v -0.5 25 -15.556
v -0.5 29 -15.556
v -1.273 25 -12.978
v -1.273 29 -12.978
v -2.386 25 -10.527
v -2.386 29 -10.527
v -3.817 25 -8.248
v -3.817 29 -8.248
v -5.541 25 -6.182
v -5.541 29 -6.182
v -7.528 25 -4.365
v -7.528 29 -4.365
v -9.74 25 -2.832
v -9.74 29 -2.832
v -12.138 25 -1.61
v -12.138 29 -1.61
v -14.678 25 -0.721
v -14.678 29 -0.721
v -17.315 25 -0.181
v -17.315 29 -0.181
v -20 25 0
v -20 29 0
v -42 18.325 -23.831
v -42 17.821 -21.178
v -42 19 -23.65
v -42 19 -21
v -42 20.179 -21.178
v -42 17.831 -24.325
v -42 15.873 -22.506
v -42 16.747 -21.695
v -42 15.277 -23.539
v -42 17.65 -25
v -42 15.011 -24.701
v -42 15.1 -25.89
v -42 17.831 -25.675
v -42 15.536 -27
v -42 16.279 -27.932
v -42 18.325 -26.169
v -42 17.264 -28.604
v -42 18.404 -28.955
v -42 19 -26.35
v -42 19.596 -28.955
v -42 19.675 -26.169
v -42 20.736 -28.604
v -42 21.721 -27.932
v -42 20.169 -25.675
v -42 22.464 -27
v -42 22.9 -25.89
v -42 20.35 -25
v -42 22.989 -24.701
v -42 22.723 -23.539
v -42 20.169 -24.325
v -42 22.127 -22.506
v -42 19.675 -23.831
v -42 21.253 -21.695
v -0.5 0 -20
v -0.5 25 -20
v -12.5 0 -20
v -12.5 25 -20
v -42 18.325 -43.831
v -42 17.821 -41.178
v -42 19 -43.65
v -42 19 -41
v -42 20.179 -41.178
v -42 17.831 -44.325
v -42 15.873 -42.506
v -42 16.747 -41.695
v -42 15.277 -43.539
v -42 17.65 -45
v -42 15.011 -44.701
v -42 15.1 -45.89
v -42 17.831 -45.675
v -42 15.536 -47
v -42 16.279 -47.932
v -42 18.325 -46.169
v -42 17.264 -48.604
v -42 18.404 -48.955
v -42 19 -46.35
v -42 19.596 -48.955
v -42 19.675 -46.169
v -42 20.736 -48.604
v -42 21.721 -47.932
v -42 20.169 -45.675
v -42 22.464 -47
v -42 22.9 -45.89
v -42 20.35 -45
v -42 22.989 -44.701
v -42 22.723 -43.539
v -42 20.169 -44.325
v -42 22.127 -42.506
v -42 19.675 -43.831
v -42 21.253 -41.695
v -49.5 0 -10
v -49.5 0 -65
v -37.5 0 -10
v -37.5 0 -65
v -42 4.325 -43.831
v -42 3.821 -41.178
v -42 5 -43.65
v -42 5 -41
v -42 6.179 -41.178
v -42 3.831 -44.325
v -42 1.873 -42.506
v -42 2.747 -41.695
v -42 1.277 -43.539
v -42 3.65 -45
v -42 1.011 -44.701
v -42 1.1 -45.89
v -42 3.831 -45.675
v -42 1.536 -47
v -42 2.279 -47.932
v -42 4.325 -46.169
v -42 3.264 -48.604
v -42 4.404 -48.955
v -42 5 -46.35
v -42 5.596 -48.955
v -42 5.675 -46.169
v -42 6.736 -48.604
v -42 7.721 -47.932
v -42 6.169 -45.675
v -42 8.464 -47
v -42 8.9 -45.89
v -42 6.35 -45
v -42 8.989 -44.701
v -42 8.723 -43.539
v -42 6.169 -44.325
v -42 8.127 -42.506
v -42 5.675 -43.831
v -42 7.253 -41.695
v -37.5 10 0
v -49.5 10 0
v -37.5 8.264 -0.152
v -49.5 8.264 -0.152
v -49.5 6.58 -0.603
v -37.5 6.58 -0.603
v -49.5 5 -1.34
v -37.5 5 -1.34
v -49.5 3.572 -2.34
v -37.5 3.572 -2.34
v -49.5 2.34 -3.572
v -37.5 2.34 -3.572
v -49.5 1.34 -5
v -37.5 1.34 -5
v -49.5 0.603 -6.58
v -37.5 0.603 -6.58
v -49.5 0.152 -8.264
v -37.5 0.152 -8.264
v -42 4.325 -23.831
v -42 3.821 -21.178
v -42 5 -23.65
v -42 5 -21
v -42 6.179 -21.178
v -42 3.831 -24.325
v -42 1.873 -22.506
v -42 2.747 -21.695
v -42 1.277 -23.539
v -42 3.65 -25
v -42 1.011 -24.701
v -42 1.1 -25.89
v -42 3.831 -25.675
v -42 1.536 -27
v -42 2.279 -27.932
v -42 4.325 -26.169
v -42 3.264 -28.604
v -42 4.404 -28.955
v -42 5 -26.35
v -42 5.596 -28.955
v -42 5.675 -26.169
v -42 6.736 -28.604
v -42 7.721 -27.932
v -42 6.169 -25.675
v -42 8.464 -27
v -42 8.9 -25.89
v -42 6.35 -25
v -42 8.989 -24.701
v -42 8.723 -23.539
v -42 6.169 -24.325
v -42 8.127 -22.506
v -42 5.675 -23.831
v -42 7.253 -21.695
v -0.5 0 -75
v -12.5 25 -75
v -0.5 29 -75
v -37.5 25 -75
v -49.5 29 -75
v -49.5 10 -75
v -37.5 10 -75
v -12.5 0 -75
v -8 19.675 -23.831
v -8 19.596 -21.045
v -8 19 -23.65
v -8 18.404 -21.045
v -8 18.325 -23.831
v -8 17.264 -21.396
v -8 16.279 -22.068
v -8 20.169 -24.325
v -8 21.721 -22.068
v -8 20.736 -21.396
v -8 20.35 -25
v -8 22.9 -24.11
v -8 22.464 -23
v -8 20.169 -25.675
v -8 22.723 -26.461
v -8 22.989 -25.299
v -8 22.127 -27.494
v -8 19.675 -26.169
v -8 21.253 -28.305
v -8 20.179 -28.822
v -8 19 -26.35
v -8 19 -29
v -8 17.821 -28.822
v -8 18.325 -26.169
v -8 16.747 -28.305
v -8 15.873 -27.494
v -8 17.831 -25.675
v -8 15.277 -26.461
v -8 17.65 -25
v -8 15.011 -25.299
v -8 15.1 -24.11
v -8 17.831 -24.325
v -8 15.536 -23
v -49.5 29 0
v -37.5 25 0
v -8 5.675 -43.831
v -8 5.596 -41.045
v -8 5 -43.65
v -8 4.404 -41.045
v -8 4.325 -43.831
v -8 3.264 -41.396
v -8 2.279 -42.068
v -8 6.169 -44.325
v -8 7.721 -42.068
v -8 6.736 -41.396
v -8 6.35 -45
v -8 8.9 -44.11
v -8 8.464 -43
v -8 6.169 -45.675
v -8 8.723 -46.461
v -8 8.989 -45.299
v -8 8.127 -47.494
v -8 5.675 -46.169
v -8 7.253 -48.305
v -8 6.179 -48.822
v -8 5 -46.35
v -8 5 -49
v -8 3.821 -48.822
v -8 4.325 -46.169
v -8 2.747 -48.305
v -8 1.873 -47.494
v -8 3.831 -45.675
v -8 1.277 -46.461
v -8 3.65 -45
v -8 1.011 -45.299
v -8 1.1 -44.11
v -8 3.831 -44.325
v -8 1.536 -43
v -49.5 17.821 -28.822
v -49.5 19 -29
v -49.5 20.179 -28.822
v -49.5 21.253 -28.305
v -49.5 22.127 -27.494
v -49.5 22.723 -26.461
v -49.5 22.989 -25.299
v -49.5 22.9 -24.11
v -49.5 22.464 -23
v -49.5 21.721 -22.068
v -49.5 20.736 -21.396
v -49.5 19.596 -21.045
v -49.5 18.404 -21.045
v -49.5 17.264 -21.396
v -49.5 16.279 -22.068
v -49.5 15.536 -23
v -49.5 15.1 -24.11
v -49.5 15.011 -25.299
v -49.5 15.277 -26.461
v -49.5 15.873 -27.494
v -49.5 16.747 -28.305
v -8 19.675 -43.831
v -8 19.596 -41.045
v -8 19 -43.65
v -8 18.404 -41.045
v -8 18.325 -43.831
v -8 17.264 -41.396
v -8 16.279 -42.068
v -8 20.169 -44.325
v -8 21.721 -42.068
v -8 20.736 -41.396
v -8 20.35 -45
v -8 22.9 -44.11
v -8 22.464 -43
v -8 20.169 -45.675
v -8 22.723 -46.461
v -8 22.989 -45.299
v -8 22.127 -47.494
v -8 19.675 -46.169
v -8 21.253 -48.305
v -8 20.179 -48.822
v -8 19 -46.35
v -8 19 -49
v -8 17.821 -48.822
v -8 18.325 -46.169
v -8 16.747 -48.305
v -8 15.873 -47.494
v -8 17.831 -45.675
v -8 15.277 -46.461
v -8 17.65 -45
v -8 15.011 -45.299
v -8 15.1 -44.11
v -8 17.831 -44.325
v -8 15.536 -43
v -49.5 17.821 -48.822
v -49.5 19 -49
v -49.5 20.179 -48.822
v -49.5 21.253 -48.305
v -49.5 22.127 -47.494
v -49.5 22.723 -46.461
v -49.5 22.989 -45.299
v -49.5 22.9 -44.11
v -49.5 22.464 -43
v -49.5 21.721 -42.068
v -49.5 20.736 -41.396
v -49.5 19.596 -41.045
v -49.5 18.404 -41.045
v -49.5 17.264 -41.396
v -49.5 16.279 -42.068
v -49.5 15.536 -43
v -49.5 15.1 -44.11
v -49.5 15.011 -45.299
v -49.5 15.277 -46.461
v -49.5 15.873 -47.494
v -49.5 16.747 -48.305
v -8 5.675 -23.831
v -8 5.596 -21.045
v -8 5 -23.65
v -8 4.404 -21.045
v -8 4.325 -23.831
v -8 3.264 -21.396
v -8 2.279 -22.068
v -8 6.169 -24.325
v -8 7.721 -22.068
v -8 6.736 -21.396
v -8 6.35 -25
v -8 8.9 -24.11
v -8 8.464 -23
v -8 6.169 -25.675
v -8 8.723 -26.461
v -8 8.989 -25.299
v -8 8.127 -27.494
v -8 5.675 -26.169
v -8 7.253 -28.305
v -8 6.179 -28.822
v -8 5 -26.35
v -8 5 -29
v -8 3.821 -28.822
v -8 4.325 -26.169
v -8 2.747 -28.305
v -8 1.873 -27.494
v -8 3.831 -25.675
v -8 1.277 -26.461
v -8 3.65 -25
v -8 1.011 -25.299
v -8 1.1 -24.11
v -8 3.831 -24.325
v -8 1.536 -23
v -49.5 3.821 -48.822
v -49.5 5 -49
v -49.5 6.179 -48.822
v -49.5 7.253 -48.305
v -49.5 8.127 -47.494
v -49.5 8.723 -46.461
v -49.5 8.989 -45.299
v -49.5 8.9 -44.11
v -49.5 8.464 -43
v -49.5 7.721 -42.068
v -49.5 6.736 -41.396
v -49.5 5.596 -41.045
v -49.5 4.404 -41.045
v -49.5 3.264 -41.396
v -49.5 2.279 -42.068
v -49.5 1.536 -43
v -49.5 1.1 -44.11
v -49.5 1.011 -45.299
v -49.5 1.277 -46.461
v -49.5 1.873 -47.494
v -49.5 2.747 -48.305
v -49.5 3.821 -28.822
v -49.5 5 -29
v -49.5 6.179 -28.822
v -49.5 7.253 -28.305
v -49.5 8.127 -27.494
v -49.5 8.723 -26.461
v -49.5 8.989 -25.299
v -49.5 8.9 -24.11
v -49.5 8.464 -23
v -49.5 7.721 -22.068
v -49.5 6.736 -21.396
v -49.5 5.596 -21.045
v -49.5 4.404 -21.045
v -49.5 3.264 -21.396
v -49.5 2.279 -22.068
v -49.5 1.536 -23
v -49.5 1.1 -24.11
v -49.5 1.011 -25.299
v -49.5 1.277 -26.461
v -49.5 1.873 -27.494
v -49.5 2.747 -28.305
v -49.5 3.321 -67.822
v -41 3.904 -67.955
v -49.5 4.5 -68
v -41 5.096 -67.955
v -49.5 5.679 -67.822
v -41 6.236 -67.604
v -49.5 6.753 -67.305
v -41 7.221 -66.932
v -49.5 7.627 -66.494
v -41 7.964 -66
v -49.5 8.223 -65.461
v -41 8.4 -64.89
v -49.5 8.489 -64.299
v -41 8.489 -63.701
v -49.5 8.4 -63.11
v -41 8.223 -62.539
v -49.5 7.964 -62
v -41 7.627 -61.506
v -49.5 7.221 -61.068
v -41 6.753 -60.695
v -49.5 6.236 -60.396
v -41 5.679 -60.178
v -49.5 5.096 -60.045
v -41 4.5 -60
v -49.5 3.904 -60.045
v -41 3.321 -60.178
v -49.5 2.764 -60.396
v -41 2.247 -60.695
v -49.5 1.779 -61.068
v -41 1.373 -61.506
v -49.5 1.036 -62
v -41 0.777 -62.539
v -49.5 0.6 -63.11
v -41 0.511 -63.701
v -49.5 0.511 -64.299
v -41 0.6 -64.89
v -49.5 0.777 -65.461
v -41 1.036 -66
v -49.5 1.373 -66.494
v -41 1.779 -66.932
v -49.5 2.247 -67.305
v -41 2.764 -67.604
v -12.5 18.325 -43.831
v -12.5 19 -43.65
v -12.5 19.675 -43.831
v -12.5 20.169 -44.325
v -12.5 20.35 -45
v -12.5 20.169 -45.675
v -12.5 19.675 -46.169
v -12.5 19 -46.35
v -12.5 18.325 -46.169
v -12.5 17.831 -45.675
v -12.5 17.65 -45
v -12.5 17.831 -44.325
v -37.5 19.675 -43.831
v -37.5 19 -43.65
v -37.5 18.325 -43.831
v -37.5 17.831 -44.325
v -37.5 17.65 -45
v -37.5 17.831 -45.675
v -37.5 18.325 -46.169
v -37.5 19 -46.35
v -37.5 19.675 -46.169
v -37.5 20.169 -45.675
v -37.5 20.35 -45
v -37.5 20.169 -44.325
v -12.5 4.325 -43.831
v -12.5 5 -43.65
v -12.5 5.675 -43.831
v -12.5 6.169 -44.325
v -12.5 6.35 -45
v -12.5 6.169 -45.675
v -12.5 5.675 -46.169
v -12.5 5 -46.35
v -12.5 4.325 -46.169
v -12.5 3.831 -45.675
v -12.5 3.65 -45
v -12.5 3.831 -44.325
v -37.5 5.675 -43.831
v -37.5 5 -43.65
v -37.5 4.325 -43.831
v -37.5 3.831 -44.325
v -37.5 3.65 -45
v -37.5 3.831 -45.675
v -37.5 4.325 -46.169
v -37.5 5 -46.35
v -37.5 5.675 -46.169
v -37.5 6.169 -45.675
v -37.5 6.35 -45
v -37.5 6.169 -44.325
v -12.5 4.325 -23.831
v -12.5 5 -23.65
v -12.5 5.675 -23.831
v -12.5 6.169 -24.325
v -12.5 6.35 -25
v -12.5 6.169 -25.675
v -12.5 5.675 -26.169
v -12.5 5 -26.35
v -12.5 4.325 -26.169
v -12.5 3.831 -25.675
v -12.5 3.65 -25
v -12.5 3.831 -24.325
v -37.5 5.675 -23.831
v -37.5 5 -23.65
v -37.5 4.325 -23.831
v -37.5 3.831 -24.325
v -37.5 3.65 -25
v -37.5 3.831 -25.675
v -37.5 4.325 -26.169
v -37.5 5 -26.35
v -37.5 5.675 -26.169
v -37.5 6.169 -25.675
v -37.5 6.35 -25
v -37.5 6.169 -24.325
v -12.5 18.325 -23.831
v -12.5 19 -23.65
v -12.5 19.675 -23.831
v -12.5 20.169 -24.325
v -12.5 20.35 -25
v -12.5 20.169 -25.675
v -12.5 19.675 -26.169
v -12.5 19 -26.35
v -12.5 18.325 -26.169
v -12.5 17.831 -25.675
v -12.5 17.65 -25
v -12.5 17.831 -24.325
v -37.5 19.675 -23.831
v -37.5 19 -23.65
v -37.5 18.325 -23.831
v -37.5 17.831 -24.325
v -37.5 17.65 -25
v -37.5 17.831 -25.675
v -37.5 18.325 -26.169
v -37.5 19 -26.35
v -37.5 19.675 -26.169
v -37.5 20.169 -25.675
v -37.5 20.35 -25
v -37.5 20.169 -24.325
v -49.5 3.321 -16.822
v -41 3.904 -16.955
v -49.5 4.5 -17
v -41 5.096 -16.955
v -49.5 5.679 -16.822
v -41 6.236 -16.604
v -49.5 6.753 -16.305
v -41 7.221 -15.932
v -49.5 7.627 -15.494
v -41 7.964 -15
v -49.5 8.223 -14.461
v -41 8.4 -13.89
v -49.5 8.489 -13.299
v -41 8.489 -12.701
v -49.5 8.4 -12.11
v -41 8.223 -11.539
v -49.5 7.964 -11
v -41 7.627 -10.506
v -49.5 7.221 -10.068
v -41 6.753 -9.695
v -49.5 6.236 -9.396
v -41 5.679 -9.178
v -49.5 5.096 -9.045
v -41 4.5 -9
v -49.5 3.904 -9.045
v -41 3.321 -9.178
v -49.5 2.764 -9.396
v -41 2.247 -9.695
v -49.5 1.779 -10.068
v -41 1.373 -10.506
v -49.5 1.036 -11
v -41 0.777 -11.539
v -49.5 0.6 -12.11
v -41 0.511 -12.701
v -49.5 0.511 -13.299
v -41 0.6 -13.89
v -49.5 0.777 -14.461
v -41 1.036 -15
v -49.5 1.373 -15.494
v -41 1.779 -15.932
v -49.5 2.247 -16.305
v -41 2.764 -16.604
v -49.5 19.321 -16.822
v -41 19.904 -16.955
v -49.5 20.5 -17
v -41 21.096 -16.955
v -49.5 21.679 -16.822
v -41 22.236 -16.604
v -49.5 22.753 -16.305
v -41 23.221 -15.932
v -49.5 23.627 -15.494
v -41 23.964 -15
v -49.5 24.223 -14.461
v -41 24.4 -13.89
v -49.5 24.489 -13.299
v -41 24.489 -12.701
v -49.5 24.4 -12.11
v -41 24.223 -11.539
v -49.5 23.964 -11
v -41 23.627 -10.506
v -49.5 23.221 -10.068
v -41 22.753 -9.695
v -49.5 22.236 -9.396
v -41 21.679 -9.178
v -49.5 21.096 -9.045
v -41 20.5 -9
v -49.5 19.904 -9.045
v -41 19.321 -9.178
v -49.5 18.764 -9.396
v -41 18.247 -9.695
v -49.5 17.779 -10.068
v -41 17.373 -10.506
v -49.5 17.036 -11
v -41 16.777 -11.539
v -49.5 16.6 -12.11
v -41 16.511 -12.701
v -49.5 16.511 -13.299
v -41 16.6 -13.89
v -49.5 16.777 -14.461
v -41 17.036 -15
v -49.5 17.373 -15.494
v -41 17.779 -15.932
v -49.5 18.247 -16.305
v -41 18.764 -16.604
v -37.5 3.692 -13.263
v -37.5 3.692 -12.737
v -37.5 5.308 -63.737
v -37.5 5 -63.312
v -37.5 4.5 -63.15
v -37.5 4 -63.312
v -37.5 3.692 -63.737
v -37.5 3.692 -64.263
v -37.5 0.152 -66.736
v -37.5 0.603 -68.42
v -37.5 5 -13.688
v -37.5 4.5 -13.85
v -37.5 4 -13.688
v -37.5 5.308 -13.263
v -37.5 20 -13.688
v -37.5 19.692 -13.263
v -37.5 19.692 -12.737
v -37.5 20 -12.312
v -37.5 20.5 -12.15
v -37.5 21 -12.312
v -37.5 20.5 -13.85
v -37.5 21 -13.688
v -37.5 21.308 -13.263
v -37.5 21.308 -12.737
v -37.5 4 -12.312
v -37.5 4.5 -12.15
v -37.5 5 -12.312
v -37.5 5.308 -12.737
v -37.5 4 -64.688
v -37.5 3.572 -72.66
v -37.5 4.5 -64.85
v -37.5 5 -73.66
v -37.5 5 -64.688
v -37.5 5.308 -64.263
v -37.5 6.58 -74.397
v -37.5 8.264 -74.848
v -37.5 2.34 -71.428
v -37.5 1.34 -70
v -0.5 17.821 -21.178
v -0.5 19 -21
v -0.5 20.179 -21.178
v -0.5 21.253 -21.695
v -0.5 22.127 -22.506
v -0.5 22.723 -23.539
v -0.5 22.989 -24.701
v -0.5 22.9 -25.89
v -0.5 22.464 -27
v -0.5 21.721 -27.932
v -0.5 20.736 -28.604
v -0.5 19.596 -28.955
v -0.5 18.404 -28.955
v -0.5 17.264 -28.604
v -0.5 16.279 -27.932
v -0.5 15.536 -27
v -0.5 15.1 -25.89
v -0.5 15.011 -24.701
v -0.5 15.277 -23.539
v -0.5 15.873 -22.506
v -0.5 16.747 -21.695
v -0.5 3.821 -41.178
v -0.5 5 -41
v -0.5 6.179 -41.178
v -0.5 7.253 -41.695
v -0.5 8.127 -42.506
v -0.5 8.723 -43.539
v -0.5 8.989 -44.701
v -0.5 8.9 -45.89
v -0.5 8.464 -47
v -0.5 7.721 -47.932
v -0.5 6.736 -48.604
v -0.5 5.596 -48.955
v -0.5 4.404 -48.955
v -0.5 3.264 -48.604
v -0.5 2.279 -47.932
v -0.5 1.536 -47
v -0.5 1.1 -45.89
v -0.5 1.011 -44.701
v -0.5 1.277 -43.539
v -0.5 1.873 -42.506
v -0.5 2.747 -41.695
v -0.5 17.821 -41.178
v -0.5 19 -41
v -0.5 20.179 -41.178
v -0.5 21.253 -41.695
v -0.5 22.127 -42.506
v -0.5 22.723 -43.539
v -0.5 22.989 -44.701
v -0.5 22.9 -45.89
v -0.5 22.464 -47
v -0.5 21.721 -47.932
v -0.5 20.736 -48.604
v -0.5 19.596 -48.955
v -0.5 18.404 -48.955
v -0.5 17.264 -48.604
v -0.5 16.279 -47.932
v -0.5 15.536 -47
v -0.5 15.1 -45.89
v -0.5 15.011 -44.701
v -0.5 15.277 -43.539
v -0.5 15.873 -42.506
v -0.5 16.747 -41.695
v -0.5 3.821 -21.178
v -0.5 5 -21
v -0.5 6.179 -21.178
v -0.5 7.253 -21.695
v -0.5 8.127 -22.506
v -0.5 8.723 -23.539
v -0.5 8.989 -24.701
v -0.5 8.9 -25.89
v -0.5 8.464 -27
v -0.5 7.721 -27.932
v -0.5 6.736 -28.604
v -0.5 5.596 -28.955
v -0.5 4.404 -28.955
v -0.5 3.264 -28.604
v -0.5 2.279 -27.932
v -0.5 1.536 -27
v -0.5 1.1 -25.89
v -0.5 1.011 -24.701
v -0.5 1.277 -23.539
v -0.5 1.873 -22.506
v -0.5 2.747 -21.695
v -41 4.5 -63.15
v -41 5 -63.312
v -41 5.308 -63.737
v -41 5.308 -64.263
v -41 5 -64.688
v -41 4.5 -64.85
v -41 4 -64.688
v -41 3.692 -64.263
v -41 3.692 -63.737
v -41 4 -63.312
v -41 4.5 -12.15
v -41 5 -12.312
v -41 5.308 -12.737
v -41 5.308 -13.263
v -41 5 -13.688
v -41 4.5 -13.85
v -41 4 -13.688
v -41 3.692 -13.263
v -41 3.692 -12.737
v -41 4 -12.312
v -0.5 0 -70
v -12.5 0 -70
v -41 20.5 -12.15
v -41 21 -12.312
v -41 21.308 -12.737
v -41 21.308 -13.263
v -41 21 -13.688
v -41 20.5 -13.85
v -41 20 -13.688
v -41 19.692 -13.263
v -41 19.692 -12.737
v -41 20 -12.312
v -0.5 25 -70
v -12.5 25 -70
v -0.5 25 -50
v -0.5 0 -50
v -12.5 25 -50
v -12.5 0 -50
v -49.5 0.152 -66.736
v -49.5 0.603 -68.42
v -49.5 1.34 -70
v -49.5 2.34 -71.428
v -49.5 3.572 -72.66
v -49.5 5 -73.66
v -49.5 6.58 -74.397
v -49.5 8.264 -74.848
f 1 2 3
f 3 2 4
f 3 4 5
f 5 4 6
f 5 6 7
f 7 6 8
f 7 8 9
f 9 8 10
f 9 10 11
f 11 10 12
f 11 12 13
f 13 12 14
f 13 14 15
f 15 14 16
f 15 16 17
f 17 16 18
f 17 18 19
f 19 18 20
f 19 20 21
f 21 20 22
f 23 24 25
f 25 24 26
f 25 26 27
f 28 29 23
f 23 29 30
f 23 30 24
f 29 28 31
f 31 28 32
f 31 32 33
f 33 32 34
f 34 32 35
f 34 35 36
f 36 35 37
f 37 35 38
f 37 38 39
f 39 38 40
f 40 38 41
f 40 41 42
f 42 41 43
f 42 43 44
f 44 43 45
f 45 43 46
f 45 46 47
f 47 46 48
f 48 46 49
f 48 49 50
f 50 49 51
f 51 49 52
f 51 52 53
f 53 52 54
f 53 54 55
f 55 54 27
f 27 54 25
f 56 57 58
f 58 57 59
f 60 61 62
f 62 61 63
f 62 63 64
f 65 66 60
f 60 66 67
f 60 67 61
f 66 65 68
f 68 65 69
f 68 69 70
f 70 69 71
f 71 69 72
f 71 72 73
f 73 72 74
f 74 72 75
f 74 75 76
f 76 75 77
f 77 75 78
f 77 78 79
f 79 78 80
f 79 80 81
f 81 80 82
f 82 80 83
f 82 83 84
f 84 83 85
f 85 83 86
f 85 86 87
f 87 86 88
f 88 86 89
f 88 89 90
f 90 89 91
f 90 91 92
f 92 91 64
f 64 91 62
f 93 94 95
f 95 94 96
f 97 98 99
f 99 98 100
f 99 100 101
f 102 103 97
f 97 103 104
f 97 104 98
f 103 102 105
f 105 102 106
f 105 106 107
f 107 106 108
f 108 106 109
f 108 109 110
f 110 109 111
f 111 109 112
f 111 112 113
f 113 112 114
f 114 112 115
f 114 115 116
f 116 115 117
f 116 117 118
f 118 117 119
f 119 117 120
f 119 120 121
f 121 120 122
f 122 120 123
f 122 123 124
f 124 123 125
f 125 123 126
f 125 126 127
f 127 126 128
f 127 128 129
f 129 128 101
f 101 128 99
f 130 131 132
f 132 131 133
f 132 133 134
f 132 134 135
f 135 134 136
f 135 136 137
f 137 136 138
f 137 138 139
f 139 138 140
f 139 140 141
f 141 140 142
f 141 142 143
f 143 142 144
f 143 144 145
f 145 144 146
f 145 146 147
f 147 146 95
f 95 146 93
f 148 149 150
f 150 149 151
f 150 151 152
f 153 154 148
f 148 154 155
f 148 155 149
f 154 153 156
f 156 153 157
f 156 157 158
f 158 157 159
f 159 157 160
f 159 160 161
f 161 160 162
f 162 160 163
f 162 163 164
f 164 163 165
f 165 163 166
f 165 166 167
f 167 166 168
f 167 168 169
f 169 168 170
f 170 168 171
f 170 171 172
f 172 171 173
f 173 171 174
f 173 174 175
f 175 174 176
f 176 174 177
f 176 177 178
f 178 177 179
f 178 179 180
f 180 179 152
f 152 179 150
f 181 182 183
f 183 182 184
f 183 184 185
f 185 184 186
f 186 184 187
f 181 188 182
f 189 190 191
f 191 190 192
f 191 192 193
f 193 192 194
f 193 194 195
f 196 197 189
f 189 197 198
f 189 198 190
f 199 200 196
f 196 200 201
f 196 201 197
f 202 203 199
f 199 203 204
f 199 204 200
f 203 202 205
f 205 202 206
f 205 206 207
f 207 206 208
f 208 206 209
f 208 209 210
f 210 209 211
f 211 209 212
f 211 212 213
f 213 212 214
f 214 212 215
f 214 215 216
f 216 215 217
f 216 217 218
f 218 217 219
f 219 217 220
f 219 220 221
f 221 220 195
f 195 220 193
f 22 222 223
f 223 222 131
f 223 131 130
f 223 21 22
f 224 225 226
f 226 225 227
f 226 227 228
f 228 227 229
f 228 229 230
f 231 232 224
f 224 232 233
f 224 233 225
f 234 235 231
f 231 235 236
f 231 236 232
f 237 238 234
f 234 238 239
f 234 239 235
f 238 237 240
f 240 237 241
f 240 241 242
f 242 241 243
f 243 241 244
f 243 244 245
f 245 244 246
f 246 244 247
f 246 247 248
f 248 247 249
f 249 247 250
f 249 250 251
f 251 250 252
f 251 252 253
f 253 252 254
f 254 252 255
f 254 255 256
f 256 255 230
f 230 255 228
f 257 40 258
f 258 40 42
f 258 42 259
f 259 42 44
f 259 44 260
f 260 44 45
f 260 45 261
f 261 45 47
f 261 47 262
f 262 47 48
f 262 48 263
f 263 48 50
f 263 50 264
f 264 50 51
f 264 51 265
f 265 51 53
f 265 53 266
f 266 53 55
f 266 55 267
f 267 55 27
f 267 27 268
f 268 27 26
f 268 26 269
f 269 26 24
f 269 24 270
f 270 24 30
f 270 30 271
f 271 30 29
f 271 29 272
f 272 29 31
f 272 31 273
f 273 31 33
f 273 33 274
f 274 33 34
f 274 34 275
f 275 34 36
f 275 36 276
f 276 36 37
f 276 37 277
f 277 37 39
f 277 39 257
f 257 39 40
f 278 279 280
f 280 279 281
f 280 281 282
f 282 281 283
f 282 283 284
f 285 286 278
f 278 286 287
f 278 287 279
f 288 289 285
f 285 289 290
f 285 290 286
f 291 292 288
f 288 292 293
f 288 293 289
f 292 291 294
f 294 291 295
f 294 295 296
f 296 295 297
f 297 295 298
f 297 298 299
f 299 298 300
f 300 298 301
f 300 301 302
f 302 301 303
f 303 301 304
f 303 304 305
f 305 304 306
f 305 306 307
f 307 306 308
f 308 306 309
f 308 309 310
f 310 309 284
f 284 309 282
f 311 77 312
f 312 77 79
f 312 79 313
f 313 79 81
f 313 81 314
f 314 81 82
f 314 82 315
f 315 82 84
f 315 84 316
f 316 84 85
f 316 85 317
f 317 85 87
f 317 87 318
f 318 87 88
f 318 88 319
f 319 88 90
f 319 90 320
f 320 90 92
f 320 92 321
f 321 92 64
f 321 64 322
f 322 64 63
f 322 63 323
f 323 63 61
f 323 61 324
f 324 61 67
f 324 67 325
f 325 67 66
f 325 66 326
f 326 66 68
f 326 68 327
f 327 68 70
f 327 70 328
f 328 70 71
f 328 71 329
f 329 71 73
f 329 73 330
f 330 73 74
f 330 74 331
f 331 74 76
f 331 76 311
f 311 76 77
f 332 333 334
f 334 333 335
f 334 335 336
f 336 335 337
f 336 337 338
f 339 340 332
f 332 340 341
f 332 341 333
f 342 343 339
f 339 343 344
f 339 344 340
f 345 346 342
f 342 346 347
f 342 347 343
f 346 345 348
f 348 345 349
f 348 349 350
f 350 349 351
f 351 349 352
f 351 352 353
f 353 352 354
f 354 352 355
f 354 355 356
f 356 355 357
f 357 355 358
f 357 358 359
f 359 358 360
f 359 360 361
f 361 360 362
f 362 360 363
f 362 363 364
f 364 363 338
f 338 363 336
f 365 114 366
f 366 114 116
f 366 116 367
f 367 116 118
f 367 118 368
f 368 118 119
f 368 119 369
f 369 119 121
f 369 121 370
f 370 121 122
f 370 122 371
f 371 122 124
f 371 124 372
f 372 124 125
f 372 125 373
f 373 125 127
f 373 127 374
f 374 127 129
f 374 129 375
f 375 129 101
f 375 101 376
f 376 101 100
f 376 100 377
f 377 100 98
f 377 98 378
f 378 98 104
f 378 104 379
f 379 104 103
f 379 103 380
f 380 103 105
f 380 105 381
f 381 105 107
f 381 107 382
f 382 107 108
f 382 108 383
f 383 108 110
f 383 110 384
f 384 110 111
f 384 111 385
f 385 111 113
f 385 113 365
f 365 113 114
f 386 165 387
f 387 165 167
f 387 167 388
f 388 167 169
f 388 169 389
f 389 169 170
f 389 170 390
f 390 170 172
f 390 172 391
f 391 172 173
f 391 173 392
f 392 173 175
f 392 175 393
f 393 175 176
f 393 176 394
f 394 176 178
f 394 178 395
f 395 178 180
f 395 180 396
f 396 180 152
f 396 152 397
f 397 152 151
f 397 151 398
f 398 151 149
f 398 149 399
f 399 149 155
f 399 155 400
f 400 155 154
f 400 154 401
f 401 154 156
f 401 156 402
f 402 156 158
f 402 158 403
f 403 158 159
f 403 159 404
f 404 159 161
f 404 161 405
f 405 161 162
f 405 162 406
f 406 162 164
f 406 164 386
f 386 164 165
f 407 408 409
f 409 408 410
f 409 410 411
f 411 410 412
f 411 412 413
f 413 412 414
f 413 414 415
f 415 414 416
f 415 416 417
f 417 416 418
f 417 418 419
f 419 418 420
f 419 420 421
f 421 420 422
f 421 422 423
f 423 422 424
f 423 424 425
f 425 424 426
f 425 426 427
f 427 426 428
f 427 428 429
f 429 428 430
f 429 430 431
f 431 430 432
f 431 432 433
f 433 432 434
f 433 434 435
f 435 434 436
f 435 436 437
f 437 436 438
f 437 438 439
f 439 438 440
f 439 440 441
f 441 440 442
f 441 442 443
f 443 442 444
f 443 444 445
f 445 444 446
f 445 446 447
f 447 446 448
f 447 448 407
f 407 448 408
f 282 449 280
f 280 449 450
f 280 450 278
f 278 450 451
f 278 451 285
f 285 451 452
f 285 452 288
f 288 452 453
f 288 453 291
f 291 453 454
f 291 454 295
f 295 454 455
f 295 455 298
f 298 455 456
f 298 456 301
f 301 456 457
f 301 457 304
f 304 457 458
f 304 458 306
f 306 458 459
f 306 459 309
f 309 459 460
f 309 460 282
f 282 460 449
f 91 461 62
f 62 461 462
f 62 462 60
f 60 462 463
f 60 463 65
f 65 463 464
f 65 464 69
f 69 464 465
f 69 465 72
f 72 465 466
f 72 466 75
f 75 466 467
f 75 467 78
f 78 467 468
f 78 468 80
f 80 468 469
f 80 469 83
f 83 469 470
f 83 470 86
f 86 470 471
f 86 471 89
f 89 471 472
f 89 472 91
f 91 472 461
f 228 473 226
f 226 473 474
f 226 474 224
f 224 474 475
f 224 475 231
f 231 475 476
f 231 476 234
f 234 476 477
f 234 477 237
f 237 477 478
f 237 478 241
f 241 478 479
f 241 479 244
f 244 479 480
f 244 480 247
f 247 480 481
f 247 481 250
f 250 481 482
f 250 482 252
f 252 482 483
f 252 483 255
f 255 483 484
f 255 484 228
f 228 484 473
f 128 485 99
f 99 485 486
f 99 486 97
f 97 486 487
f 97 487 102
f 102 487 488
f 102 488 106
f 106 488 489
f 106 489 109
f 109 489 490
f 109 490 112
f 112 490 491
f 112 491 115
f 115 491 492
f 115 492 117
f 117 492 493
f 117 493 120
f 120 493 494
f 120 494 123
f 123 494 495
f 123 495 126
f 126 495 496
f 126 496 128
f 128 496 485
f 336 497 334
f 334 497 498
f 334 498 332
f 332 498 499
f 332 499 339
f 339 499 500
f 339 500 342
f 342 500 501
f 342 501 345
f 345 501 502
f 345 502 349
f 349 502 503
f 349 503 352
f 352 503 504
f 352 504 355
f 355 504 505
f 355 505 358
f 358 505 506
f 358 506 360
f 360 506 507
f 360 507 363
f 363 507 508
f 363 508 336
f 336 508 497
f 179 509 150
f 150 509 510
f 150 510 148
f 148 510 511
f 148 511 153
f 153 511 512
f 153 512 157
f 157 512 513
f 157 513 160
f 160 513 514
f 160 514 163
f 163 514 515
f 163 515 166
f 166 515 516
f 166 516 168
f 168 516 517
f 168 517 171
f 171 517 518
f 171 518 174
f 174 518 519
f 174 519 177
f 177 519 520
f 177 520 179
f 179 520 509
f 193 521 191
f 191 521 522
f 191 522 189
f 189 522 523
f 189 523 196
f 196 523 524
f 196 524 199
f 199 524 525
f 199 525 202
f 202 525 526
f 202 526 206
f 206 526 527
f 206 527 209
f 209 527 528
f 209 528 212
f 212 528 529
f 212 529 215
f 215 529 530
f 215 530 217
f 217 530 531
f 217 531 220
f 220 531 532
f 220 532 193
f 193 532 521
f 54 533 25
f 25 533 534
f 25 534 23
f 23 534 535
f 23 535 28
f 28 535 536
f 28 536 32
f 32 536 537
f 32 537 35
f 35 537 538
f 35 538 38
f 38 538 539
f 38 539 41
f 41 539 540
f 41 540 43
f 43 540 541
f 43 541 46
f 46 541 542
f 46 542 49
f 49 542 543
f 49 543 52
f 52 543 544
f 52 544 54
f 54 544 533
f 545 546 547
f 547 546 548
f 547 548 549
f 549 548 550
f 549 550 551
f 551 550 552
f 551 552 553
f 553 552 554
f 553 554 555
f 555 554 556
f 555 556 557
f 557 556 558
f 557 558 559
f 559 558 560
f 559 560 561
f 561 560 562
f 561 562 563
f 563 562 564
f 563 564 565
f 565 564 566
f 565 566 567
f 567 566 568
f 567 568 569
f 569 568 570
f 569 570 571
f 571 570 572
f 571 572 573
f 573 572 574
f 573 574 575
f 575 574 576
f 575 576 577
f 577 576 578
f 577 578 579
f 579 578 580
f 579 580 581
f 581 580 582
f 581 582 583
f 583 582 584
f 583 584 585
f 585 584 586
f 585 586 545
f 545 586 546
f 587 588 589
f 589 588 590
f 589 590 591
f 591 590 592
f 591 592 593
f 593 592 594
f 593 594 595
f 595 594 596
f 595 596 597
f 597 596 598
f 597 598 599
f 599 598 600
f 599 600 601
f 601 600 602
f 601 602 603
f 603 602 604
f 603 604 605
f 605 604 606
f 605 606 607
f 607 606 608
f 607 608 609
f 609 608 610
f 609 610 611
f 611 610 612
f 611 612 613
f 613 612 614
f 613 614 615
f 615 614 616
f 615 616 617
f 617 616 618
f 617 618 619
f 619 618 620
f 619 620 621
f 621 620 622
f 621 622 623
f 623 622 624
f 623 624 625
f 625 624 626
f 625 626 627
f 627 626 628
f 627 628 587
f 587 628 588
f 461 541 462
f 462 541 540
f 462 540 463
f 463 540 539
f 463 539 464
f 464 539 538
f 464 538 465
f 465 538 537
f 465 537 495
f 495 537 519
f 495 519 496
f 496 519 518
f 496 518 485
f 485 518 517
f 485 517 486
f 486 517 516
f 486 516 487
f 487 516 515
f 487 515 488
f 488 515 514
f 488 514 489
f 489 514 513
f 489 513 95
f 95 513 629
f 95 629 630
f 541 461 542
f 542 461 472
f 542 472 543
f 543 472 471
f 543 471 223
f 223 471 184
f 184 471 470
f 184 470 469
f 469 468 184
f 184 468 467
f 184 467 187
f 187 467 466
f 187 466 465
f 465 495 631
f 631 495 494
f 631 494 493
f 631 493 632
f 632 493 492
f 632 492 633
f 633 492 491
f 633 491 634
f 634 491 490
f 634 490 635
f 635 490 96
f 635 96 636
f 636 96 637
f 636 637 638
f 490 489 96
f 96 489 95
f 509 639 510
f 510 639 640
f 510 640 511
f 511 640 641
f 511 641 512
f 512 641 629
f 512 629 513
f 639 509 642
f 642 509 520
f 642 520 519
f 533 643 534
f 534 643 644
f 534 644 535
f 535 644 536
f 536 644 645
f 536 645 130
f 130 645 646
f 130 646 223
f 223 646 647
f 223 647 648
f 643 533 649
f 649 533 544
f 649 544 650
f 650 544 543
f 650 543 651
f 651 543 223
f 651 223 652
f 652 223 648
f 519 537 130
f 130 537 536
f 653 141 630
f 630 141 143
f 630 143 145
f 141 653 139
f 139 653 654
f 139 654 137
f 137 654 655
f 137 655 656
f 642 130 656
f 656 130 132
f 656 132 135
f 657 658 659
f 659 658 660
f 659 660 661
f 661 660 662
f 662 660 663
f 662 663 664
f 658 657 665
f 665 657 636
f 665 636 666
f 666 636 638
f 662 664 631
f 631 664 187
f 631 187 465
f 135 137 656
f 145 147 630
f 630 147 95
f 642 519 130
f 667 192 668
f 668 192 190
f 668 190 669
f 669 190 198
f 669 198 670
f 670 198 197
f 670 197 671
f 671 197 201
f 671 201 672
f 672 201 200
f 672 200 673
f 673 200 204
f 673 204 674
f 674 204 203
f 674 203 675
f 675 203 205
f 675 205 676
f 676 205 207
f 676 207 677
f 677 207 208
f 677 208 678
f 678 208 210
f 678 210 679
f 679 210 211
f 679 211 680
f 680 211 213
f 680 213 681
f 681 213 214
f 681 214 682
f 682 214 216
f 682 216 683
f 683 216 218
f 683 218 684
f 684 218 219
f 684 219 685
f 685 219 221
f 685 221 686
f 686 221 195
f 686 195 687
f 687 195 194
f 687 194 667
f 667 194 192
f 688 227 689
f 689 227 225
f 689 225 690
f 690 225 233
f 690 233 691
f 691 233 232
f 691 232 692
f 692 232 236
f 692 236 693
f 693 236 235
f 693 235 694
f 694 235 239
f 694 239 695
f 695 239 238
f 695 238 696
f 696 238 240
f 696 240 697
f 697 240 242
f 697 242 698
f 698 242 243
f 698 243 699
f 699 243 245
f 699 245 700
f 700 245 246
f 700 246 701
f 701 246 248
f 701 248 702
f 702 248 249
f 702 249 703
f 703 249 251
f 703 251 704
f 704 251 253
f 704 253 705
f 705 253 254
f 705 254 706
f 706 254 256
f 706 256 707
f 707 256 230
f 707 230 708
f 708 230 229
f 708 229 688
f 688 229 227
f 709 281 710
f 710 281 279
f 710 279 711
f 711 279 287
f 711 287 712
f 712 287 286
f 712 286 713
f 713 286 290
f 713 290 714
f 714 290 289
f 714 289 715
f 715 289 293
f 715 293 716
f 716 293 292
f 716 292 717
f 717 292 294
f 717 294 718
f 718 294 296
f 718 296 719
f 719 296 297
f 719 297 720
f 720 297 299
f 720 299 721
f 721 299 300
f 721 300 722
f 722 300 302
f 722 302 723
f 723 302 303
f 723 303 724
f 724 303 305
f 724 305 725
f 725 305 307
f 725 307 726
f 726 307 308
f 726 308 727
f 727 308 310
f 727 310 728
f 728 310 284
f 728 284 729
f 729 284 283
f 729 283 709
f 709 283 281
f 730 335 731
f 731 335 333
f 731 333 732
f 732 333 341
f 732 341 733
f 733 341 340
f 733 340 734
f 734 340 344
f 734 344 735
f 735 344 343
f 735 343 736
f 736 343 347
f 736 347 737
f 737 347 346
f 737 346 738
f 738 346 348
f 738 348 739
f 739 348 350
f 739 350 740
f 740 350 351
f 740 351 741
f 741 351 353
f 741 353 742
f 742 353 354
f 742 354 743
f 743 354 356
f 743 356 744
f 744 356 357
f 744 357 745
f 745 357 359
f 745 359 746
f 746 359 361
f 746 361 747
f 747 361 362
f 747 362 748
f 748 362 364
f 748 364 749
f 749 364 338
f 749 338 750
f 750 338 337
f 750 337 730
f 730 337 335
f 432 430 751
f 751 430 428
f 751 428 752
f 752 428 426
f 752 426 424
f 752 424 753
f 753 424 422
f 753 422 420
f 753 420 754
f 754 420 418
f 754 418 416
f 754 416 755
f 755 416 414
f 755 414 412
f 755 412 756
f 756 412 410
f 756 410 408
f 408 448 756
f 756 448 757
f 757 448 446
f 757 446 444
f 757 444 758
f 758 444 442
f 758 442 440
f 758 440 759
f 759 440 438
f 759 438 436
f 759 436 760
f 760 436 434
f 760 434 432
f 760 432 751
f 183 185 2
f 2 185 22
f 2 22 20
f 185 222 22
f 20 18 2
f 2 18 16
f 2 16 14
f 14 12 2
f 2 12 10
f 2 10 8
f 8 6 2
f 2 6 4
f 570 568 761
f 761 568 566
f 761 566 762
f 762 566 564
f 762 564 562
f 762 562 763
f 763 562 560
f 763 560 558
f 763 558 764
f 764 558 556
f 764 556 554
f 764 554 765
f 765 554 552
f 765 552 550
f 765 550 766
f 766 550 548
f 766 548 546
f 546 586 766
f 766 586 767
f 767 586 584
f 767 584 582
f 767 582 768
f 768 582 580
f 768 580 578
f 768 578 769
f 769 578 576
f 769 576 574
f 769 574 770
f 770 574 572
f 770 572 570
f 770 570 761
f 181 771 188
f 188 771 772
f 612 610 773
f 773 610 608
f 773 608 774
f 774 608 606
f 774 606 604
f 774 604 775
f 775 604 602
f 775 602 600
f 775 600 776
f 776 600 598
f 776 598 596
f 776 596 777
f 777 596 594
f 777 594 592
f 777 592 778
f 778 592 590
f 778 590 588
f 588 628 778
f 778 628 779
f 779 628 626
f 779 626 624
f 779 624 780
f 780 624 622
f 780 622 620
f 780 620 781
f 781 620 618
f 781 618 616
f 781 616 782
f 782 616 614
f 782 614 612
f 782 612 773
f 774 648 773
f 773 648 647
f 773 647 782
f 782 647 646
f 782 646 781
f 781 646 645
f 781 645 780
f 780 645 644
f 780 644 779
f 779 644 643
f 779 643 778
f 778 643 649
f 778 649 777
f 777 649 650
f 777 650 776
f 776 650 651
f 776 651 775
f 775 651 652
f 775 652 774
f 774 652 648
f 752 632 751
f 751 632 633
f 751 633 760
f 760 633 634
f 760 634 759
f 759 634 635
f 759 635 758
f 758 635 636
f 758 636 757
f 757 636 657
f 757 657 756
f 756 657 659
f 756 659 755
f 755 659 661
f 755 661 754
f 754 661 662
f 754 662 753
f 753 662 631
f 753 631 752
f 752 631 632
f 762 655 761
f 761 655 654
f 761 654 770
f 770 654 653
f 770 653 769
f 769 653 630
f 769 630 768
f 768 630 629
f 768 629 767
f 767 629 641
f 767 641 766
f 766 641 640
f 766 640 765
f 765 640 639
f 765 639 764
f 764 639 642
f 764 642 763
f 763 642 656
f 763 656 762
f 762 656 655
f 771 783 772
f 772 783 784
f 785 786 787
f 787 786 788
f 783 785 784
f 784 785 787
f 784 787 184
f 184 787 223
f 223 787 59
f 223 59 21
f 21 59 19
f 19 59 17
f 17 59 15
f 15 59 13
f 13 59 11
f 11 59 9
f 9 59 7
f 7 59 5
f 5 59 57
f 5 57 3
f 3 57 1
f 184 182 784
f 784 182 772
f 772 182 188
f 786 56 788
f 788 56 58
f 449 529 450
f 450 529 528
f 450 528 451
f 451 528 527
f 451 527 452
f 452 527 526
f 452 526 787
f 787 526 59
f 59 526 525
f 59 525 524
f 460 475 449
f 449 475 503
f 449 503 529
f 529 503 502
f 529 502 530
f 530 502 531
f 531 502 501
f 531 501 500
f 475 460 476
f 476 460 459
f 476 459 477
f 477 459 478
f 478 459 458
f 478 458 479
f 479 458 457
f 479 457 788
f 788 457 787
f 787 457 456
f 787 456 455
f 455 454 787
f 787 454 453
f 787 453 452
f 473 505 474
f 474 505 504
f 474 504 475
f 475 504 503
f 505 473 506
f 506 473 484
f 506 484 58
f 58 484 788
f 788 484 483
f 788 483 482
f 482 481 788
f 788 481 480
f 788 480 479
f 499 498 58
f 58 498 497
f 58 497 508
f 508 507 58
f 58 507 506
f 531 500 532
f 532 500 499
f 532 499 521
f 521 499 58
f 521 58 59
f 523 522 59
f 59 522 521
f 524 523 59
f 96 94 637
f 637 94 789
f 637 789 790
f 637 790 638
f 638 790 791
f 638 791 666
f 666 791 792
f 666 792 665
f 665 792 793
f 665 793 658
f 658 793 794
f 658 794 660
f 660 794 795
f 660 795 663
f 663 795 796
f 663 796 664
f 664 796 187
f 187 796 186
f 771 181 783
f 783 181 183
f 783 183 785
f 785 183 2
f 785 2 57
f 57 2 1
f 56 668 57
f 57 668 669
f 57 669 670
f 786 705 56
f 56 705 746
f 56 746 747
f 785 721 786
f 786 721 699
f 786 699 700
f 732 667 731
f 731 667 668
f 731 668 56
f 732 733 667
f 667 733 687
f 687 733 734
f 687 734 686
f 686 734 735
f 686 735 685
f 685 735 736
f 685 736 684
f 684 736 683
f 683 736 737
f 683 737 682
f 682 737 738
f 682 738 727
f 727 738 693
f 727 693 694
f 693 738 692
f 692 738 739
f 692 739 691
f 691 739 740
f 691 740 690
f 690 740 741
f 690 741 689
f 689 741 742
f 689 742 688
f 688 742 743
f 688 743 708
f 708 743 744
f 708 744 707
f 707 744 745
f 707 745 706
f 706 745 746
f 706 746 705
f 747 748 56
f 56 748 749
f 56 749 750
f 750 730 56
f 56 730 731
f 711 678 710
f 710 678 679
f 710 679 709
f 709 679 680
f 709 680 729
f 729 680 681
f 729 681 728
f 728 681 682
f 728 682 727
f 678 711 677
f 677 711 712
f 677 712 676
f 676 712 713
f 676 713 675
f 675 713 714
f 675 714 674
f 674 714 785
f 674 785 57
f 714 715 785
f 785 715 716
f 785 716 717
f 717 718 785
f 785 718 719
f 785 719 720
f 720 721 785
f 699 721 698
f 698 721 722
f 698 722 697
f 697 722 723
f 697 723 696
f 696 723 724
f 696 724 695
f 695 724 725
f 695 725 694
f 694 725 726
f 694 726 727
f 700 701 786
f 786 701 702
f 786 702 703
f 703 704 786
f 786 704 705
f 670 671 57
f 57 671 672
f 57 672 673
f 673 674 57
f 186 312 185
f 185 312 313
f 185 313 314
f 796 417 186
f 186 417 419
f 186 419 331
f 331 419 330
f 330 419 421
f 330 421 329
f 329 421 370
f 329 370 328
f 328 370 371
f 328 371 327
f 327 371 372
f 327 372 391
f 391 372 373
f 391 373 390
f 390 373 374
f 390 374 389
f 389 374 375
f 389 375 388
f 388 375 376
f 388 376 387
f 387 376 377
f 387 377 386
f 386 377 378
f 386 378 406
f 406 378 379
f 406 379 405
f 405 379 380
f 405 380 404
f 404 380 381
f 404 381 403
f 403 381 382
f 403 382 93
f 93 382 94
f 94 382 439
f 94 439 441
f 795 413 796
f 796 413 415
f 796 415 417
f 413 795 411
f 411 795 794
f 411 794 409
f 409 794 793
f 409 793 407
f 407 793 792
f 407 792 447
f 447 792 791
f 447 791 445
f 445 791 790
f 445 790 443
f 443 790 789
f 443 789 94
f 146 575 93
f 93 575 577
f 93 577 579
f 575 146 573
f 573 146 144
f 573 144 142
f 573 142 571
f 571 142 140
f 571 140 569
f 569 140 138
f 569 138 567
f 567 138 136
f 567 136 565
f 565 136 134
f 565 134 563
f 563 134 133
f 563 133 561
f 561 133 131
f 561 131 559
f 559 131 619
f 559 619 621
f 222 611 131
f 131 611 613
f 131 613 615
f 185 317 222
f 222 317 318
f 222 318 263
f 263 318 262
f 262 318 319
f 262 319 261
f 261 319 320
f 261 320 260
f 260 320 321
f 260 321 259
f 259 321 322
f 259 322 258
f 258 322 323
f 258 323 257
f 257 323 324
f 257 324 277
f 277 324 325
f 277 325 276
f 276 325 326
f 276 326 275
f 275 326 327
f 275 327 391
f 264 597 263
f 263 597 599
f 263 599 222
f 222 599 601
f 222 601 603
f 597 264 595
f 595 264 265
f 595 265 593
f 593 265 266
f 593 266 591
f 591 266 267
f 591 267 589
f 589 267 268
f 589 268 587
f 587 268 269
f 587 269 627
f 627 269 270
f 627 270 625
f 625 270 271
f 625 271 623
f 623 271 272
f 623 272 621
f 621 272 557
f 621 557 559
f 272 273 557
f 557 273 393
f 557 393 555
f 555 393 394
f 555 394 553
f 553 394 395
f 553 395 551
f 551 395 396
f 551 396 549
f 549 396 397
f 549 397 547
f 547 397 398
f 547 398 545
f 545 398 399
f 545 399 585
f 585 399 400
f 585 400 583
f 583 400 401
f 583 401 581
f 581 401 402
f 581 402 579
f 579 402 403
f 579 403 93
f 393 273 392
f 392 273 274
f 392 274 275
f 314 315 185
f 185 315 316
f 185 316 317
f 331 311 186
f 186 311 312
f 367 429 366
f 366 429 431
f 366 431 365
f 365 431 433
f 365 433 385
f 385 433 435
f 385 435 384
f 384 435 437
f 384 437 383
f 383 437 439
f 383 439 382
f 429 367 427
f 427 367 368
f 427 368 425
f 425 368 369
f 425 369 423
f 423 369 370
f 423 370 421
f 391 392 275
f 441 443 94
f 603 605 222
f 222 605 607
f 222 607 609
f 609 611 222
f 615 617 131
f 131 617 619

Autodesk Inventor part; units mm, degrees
ref_plane "YZ Plane" through (0, 0, 0) normal (1, 0, 0) x (0, 1, 0)
ref_plane "XZ Plane" through (0, 0, 0) normal (0, 1, 0) x (-1, 0, 0)
ref_plane "XY Plane" through (0, 0, 0) normal (0, 0, 1) x (1, 0, 0)
sketch "スケッチ1" plane through (0, 0, 0) normal (0, 1, 0) x (-1, 0, 0)
  line L0 (0, 0) -> (50, 0)
  line L1 (50, 0) -> (50, -75)
  line L2 (50, -75) -> (0, -75)
  line L3 (0, -75) -> (0, 0)
  dimension "d0" = 50
  dimension "d1" = 75
extrude "押し出し1" add sketch "スケッチ1" along normal blind 29
sketch "スケッチ2" plane through (0, 0, 0) normal (0, -1, 0) x (1, 0, 0)
  line L0 (-50, 0) -> (0, 0) projected
  line L1 (0, -75) -> (-50, -75) projected
  line L2 (-37.5, 0) -> (-12.5, 0)
  line L3 (-12.5, 0) -> (-12.5, -75)
  line L4 (-12.5, -75) -> (-37.5, -75)
  line L5 (-37.5, -75) -> (-37.5, 0)
  line L6 (-50, 0) -> (0, 0) projected
  point P0 (-12.5, -37.5)
  point P1 (-25, 0)
  point P2 (-25, 0)
  dimension "d4" = 25
extrude "押し出し2" cut sketch "スケッチ2" against normal blind 25
sketch "スケッチ3" plane through (0, 0, 0) normal (1, 0, 0) x (0, 0, -1)
  line L0 (0, 0) -> (20, 0)
  line L1 (20, 0) -> (20, 25)
  line L2 (20, 25) -> (0, 25)
  line L3 (0, 25) -> (0, 0)
  line L4 (50, 0) -> (70, 0)
  line L5 (70, 0) -> (70, 25)
  line L6 (70, 25) -> (50, 25)
  line L7 (50, 25) -> (50, 0)
  line L8 (0, 25) -> (75, 25) projected
  point P0 (60, 25)
  point P1 (10, 25)
  dimension "d7" = 20
  dimension "d8" = 20
  dimension "d9" = 50
extrude "押し出し3" cut sketch "スケッチ3" against normal up to surface (12.5 mm away)
sketch "スケッチ4" plane through (-50, 0, -75) normal (-1, 0, 0) x (0, 0, 1)
  circle A0 centre (62, 20.5) radius 0.85
  circle A1 centre (62, 4.5) radius 0.85
  circle A2 centre (11, 4.5) radius 0.85
  line L0 (62, 20.5) -> (62, 4.5) construction
  line L1 (62, 4.5) -> (11, 4.5) construction
  line L2 (75, 0) -> (75, 25) projected
  point P0 (75, 12.5)
  point P1 (62, 12.5)
  dimension "d12" = 1.7
  dimension "d13" = 1.7
  dimension "d14" = 1.7
  dimension "d15" = 16
  dimension "d16" = 51
  dimension "d17" = 13
extrude "押し出し4" cut sketch "スケッチ4" against normal up to surface (12.5 mm away)
sketch "スケッチ5" plane through (-50, 0, -75) normal (-1, 0, 0) x (0, 0, 1)
  circle A0 centre (11, 4.5) radius 0.85 projected
  circle A1 centre (11, 4.5) radius 4
  circle A2 centre (62, 20.5) radius 0.85 projected
  circle A3 centre (62, 20.5) radius 4
  circle A4 centre (62, 4.5) radius 0.85 projected
  circle A5 centre (62, 4.5) radius 4
  point P0 (75, 0)
  dimension "d20" = 8
  dimension "d21" = 8
  dimension "d22" = 8
extrude "押し出し5" cut sketch "スケッチ5" against normal blind 9
fillet "フィレット1" radius 10 2 edges at (-43.75, 0, 0) (-43.75, 0, -75)
sketch "スケッチ7" plane through (0, 0, -75) normal (1, 0, 0) x (0, 0, -1)
  line L0 (-30, 5) -> (-50, 5) construction
  line L1 (-50, 5) -> (-50, 19) construction
  line L2 (-50, 19) -> (-30, 19) construction
  line L3 (-30, 19) -> (-30, 5) construction
  line L4 (-55, 0) -> (-25, 0) projected
  line L5 (-25, 0) -> (-25, 25) projected
  line L6 (-55, 25) -> (-55, 0) projected
  line L7 (-75, 29) -> (0, 29) projected
  circle A0 centre (-50, 5) radius 1.35
  circle A1 centre (-30, 5) radius 1.35
  circle A2 centre (-30, 19) radius 1.35
  circle A3 centre (-50, 19) radius 1.35
  point P0 (-75, 0)
  dimension "d26" = 5
  dimension "d27" = 5
  dimension "d28" = 5
  dimension "d29" = 10
  dimension "d30" = 2.7
  dimension "d31" = 2.7
  dimension "d32" = 2.7
  dimension "d33" = 2.7
extrude "押し出し6" cut sketch "スケッチ7" against normal through all
fillet "フィレット2" radius 20 1 edges at (0, 27, 0)
sketch "スケッチ8" plane through (0, 0, -75) normal (1, 0, 0) x (0, 0, -1)
  circle A0 centre (-30, 19) radius 4
  circle A1 centre (-30, 5) radius 4
  circle A2 centre (-50, 5) radius 4
  circle A3 centre (-50, 19) radius 4
  circle A4 centre (-30, 5) radius 1.35 projected
  circle A5 centre (-30, 19) radius 1.35 projected
  circle A6 centre (-50, 19) radius 1.35 projected
  circle A7 centre (-50, 5) radius 1.35 projected
  point P0 (-75, 0)
  dimension "d37" = 8
  dimension "d38" = 8
  dimension "d39" = 8
  dimension "d40" = 8
extrude "押し出し7" cut sketch "スケッチ8" against normal blind 8 contours A0 | A1 | A2 | A3 | A4 | A5 | A6 | A7
sketch "スケッチ9" plane through (-50, 29, -75) normal (-1, 0, 0) x (0, 0, 1)
  circle A0 centre (30, -24) radius 4
  circle A1 centre (30, -10) radius 4
  circle A2 centre (50, -24) radius 4
  circle A3 centre (50, -10) radius 4
  circle A4 centre (30, -10) radius 1.35 projected
  circle A5 centre (30, -24) radius 1.35 projected
  circle A6 centre (50, -10) radius 1.35 projected
  circle A7 centre (50, -24) radius 1.35 projected
  point P0 (75, -29)
  dimension "d43" = 8
  dimension "d44" = 8
  dimension "d45" = 8
  dimension "d46" = 8
extrude "押し出し8" cut sketch "スケッチ9" against normal blind 8 contours A0 | A1 | A2 | A3 | A4 | A5 | A6 | A7
sketch "スケッチ11" plane through (0, 29, 0) normal (0, 1, 0) x (1, 0, 0)
  line L0 (-49.5, 90) -> (-0.5, 90)
  line L1 (-0.5, 90) -> (-0.5, -10)
  line L2 (-0.5, -10) -> (-49.5, -10)
  line L3 (-49.5, -10) -> (-49.5, 90)
  line L4 (-50, 75) -> (-50, 0) projected
  line L5 (0, 20) -> (0, 75) projected
  line L6 (-80, 110) -> (50, 110)
  line L7 (50, 110) -> (50, -10)
  line L8 (50, -10) -> (-80, -10)
  line L9 (-80, -10) -> (-80, 110)
  point P0 (0, 0)
  point P1 (-0.5, -10)
  dimension "d49" = 0.5
  dimension "d50" = 0.5
extrude "押し出し9" cut sketch "スケッチ11" against normal through all contours L3 L8 L9 L6 L7 L1 L0
equation "\"d8\" = d7"
properties part number "モーター接続"
